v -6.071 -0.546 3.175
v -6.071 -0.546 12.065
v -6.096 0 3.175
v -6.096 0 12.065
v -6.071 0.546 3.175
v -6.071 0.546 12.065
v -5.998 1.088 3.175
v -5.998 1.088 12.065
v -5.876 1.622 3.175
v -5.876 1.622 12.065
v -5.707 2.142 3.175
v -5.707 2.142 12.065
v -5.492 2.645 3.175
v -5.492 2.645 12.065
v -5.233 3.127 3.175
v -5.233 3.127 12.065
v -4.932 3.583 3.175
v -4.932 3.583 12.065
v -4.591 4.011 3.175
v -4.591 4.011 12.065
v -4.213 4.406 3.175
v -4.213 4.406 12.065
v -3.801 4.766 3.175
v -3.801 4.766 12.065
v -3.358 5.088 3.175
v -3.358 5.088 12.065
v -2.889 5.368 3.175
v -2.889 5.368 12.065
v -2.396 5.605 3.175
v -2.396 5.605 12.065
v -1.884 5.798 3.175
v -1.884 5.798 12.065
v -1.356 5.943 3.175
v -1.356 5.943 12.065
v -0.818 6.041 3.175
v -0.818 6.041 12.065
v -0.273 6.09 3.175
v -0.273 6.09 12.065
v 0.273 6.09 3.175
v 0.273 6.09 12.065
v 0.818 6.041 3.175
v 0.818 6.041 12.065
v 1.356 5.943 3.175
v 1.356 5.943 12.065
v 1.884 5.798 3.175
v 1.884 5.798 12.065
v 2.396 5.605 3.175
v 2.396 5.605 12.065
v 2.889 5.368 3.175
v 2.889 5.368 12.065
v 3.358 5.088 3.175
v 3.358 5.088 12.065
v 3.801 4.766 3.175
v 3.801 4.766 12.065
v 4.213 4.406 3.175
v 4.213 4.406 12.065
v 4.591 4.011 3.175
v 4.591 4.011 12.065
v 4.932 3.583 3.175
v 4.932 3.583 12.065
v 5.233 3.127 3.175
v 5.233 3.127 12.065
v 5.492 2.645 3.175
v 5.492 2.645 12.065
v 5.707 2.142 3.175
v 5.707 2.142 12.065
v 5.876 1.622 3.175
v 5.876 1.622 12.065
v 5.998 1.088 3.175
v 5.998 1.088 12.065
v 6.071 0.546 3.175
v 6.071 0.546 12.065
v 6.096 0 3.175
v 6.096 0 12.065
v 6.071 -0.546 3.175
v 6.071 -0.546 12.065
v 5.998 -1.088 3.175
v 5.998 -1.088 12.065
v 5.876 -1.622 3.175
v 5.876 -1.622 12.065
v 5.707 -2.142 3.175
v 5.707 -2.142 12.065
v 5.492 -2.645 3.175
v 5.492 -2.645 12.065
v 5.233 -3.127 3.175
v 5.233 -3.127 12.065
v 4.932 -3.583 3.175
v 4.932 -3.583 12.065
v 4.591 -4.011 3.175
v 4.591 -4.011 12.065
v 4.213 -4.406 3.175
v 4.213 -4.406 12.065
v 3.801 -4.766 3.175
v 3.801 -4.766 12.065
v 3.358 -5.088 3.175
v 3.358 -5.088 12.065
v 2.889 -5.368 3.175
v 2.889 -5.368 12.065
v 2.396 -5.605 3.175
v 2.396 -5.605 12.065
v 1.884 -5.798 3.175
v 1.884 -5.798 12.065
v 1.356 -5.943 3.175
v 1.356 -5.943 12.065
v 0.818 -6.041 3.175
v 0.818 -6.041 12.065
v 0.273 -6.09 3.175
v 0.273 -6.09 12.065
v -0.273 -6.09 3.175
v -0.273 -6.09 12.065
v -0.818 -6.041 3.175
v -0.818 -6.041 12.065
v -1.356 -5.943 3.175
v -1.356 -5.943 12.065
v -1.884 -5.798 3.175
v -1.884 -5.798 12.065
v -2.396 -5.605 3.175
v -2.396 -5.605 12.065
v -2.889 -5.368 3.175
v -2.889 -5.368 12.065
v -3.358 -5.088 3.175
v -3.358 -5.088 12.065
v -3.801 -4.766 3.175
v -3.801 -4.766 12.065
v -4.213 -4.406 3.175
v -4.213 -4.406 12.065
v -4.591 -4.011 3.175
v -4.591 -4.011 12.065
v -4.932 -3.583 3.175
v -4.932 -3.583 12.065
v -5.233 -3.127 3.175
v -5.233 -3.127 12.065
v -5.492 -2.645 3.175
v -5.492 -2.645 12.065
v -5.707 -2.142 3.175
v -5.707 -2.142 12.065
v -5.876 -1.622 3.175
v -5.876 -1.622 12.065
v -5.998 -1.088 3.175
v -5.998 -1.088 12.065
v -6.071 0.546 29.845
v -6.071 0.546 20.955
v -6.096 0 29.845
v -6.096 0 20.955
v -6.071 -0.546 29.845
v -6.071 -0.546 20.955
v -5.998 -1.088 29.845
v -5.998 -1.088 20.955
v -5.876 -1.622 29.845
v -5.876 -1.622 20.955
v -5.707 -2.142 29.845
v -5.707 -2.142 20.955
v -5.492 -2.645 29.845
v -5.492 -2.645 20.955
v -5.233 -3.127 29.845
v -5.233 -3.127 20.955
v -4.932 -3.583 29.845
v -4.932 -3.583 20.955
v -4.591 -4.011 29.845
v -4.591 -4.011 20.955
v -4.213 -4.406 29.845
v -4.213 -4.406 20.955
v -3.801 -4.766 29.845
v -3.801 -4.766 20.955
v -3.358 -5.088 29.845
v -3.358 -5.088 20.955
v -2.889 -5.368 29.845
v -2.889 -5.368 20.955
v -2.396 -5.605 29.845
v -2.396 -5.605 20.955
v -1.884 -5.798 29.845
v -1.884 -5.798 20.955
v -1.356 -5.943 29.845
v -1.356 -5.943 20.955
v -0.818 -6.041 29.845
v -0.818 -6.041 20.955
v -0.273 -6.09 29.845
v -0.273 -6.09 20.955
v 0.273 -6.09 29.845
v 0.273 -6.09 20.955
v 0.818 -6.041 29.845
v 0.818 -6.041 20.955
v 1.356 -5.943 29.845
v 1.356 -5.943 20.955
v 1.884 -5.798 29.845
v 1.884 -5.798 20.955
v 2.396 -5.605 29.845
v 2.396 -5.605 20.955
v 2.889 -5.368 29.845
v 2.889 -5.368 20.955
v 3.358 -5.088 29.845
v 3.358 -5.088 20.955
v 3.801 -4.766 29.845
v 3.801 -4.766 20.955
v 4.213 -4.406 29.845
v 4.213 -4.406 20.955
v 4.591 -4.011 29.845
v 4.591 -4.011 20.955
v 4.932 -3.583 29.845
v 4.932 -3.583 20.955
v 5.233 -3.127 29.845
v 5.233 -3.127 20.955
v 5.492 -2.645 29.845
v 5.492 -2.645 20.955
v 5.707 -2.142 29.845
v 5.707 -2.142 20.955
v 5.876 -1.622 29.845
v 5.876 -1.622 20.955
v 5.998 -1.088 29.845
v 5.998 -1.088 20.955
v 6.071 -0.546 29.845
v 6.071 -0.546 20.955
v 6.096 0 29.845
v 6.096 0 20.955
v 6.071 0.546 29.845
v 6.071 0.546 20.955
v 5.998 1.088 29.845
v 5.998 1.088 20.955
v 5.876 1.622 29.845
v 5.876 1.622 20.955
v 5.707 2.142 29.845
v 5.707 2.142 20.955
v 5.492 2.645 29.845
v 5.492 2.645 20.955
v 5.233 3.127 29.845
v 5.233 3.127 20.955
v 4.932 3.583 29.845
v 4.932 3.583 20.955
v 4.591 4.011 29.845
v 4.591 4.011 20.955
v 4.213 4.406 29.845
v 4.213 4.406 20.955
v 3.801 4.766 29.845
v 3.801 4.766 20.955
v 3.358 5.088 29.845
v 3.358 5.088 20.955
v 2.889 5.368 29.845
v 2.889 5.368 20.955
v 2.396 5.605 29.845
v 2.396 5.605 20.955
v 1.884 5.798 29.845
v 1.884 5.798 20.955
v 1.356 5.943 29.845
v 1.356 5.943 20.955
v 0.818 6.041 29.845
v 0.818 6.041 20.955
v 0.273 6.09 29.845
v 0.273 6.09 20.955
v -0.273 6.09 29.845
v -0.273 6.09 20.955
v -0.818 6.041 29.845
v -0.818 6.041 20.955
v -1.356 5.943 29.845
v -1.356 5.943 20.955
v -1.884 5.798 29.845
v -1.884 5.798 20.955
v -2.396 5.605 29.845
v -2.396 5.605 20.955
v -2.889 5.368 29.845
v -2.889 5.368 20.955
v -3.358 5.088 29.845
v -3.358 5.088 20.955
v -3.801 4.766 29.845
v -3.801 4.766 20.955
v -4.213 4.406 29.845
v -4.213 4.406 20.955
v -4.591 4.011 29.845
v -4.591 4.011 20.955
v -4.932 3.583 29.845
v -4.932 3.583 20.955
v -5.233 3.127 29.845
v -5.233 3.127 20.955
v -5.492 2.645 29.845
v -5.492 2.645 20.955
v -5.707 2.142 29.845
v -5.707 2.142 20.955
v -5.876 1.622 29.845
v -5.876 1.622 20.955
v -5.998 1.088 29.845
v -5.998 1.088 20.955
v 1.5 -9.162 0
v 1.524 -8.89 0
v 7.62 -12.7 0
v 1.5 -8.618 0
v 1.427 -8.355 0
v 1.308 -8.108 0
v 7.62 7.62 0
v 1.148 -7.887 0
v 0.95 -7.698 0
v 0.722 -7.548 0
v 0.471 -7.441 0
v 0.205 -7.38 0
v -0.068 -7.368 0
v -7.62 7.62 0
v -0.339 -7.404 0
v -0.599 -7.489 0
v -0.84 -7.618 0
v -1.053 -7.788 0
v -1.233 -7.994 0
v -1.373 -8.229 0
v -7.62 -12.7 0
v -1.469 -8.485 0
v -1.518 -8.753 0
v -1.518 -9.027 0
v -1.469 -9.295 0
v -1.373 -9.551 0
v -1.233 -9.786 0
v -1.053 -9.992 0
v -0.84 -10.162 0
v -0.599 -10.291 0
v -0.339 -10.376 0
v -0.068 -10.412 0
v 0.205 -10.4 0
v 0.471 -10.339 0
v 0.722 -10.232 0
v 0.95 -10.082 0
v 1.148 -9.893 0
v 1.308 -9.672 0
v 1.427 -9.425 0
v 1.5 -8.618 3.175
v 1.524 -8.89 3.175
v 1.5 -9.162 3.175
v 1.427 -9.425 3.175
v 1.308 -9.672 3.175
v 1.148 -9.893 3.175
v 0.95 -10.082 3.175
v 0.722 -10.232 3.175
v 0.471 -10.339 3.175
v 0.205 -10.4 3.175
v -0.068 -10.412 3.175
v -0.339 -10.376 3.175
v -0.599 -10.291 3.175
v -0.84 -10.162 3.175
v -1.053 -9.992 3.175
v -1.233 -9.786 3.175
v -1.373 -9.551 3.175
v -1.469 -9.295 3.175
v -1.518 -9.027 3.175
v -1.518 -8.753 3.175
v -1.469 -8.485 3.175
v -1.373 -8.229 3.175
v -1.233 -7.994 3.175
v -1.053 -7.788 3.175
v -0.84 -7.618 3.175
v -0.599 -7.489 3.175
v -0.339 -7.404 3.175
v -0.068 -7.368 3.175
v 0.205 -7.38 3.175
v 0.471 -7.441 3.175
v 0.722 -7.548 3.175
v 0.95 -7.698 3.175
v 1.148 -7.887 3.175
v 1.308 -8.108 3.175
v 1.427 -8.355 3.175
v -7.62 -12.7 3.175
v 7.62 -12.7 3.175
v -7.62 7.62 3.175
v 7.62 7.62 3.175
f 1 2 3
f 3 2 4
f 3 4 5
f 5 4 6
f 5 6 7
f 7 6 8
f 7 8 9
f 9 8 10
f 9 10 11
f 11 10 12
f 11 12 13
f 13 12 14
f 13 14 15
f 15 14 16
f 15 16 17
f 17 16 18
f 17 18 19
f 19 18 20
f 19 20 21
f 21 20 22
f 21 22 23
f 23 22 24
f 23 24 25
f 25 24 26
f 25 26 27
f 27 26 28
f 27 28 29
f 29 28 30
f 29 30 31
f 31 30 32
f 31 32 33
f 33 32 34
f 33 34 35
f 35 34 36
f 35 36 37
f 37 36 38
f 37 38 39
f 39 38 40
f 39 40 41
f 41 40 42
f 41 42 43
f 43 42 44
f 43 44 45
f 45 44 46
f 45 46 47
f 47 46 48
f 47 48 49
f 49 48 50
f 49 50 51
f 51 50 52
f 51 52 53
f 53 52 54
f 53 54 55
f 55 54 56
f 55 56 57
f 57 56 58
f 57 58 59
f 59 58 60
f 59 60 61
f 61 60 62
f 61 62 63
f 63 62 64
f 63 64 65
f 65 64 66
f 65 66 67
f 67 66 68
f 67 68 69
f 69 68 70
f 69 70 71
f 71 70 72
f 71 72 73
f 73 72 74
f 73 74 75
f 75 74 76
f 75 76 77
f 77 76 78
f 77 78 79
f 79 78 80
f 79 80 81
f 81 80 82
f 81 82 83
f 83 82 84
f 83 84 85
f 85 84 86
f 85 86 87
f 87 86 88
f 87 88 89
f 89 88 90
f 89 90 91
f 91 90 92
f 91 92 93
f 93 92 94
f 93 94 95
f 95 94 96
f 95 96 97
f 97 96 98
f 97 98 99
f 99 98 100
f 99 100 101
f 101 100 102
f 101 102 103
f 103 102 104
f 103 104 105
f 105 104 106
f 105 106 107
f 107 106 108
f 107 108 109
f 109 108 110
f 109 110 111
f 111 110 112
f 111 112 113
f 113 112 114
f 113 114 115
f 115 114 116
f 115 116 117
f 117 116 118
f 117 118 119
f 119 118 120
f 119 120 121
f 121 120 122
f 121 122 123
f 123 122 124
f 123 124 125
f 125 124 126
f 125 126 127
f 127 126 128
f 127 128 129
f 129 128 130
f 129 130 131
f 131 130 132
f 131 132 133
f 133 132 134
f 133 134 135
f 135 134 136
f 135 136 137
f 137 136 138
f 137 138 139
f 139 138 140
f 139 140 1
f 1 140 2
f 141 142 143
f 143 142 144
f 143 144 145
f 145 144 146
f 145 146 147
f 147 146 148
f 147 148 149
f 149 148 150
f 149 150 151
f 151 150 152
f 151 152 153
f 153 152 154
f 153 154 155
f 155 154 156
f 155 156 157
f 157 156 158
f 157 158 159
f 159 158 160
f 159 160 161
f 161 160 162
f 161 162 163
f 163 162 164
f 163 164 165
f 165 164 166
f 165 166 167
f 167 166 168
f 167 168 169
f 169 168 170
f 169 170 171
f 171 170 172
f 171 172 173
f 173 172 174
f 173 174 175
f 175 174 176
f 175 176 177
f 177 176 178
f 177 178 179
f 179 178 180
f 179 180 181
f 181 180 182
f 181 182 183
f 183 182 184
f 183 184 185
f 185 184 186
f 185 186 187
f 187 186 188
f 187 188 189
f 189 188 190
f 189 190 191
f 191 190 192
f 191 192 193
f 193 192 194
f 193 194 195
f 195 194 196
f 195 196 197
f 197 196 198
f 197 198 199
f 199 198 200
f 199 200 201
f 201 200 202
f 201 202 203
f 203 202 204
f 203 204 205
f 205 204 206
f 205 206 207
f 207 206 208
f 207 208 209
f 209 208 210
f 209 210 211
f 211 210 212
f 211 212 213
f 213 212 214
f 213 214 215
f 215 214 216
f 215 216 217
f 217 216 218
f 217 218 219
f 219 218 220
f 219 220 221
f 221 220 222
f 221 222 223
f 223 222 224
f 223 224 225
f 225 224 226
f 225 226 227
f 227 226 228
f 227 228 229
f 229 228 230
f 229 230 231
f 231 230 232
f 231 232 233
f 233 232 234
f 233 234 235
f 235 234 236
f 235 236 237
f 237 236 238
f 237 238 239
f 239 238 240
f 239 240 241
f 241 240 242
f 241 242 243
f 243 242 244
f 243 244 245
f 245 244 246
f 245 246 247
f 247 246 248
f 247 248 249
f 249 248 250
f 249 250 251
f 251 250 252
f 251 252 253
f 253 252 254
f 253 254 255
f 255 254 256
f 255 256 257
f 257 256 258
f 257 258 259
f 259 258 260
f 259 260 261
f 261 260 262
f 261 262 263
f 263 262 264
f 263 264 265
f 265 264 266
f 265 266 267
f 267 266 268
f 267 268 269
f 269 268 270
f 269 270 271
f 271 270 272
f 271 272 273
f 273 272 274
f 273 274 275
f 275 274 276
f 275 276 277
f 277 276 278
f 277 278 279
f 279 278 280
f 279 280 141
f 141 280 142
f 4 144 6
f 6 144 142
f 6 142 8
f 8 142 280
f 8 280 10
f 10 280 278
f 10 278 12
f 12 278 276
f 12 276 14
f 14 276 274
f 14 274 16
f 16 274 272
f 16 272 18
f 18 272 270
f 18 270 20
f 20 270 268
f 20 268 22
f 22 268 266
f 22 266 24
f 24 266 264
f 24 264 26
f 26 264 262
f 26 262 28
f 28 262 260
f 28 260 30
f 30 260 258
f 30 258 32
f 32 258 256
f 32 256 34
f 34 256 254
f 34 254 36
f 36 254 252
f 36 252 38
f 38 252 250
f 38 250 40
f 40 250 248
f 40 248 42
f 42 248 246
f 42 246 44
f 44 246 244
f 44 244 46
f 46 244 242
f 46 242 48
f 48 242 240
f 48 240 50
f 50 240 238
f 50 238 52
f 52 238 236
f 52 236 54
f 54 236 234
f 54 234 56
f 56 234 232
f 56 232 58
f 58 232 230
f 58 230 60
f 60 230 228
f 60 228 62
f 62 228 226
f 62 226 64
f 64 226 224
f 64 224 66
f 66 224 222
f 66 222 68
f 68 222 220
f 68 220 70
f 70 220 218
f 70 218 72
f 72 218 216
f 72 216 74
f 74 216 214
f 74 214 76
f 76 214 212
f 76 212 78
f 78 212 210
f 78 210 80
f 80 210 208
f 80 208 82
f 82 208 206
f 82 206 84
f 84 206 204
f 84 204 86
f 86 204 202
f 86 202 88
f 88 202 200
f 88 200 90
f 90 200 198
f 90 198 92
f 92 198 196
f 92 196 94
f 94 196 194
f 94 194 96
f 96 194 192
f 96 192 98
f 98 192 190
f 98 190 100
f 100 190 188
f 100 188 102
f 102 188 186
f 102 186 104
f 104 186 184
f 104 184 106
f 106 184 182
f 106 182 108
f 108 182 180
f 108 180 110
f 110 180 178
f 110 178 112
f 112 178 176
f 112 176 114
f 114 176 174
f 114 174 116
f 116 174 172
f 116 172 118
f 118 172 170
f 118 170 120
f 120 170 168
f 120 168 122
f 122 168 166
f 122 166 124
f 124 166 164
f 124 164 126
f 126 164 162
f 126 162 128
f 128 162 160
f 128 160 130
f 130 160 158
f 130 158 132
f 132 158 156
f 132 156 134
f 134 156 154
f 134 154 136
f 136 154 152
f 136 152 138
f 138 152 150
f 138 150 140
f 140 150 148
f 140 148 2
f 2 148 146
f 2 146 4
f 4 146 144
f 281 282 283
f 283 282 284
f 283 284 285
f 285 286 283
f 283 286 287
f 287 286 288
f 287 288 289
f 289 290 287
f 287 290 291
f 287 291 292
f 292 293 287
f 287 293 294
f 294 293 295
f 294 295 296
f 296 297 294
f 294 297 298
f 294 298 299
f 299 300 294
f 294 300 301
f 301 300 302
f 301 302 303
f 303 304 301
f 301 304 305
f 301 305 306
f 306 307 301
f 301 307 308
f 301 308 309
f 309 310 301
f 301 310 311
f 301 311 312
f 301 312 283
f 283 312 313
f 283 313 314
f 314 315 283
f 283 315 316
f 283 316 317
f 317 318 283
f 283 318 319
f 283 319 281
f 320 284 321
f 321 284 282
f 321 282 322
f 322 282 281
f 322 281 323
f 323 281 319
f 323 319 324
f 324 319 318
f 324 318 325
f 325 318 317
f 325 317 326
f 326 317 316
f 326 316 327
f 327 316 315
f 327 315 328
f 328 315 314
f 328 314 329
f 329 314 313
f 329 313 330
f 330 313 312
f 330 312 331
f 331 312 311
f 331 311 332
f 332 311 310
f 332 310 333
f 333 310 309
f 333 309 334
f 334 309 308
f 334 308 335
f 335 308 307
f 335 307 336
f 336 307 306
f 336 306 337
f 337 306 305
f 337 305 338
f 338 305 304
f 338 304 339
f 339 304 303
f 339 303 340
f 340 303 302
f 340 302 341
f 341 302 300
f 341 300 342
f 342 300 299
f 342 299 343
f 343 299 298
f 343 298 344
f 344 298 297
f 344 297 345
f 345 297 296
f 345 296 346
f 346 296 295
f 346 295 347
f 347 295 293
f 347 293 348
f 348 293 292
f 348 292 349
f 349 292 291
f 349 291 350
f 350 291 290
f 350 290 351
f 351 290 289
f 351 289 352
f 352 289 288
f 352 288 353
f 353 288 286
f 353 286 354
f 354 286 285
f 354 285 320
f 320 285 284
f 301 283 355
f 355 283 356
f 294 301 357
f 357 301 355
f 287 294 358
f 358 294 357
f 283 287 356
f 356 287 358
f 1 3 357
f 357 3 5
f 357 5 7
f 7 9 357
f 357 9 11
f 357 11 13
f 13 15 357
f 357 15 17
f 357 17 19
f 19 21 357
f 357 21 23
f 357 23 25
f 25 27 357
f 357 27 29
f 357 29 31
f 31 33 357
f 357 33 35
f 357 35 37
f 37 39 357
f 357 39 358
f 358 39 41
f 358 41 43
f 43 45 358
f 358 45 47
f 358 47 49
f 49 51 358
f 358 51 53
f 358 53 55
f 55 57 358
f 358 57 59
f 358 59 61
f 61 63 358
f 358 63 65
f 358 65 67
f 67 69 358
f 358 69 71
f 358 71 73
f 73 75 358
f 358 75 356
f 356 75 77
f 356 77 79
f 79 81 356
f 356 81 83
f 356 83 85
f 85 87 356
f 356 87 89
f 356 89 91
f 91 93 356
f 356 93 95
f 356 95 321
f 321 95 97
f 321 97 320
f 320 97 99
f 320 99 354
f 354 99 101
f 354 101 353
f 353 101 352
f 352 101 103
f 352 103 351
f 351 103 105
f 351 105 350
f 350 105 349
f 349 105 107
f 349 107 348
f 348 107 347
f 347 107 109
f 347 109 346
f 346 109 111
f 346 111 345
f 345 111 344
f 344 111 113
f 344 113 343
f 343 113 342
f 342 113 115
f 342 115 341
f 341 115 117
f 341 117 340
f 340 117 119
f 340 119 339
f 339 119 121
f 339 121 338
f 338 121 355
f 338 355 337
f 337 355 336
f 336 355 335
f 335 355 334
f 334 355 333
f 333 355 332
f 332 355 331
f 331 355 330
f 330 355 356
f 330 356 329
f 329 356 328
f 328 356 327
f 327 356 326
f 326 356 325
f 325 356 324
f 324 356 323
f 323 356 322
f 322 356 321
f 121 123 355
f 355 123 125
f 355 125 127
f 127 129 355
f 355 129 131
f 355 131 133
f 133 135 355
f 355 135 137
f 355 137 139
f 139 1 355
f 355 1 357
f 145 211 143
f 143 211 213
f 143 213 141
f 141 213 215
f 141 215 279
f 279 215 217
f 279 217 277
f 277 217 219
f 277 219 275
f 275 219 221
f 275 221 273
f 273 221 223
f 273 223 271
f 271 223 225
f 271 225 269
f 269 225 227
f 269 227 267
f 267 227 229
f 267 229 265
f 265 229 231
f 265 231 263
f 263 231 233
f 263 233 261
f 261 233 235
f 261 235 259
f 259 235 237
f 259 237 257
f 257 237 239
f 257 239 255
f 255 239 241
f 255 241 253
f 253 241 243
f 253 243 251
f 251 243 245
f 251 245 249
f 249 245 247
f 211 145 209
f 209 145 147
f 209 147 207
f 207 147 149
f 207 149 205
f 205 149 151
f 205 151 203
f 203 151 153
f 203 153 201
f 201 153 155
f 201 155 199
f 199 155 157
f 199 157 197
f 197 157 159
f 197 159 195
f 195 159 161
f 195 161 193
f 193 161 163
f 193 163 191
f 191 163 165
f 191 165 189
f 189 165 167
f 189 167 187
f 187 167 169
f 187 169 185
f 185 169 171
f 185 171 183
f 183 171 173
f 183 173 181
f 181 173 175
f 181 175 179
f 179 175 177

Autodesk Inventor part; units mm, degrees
ref_plane "YZ Plane" through (0, 0, 0) normal (1, 0, 0) x (0, 1, 0)
ref_plane "XZ Plane" through (0, 0, 0) normal (0, 1, 0) x (-1, 0, 0)
ref_plane "XY Plane" through (0, 0, 0) normal (0, 0, 1) x (1, 0, 0)
sketch "Sketch1" plane through (0, 0, 0) normal (0, 0, 1) x (1, 0, 0)
  line L0 (7.62, 12.7) -> (-7.62, 12.7)
  line L1 (-7.62, 12.7) -> (-7.62, -12.7)
  line L2 (-7.62, -12.7) -> (7.62, -12.7)
  line L3 (7.62, -12.7) -> (7.62, 12.7)
  line L4 (7.62, 12.7) -> (-7.62, -12.7) construction
  line L5 (-7.62, 12.7) -> (7.62, -12.7) construction
  circle A0 centre (0, 0) radius 6.096
  circle A1 centre (0, -8.89) radius 1.524
  line L6 (7.62, 7.62) -> (-7.62, 7.62)
  point P0 (0, 7.62)
  dimension "d0" = 12.192
  dimension "d1" = 15.24
  dimension "d2" = 25.4
  dimension "d7" = 3.048
  dimension "d8" = 8.89
  dimension "d10" = 7.62
extrude "Extrusion1" add sketch "Sketch1" along normal blind 3.175 contours L3 L2 L1 L6 | A0
extrude "Extrusion2" add sketch "Sketch1" along normal blind 26.67 from surface at 3.175 contours A0
properties part number "FRONT_AXEL"
